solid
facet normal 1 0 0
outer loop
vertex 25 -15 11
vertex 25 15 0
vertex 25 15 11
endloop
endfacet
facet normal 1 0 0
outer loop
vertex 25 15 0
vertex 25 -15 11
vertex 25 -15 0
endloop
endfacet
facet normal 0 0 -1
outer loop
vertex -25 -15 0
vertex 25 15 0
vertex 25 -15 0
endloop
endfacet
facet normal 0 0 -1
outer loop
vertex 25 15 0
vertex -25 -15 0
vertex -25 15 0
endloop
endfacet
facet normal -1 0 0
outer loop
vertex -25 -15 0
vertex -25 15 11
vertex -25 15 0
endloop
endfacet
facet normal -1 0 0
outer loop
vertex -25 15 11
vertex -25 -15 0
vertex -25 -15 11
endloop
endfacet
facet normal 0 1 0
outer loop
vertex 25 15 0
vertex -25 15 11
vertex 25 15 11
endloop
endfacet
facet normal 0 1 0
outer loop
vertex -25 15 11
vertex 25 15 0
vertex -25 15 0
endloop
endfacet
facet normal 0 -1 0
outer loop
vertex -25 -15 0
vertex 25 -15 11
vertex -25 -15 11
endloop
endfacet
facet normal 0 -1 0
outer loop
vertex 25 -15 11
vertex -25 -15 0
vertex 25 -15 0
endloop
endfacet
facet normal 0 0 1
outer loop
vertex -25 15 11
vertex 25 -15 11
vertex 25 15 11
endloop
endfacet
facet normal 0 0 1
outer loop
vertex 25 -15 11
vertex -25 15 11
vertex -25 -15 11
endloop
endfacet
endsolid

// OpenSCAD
// Base block
module base_block() {
    // Removed recessed section to make the top surface flat
    translate([0, 0, 5]) // Adjust position to align flat
    cube([50, 30, 10], center = true);
}

// Flat plate
module flat_plate() {
    // Repositioned to sit directly on the base block without any gap
    translate([0, 0, 10]) // Adjust position to align flush with the base block
    cube([50, 30, 2], center = true);
}

// Trapezoidal block
module trapezoidal_block() {
    // Adjusted top surface width and slanted sides to match the original model
    translate([0, 0, 12]) // Adjust position to align above the flat plate
    rotate([0, 0, 0]) // Ensure proper orientation
    polyhedron(
        points = [
            [-25, -15, 0], [25, -15, 0], [22, 15, 0], [-22, 15, 0], // Bottom vertices
            [-30, -15, 10], [30, -15, 10], [25, 15, 10], [-25, 15, 10]  // Top vertices
        ],
        faces = [
            [0, 1, 5, 4], [1, 2, 6, 5], [2, 3, 7, 6], [3, 0, 4, 7], // Side faces
            [0, 1, 2, 3], [4, 5, 6, 7] // Top and bottom faces
        ]
    );
}

// Triangular prism
module triangular_prism() {
    // Reoriented to align its triangular base parallel to the base block
    translate([0, 0, 22]) // Adjust position to align above the trapezoidal block
    rotate([0, 0, 0]) // Ensure proper orientation
    polyhedron(
        points = [
            [-15, -10, 0], [15, -10, 0], [0, 10, 0], // Bottom vertices
            [-15, -10, 10], [15, -10, 10], [0, 10, 10]  // Top vertices
        ],
        faces = [
            [0, 1, 2], [3, 4, 5], // Triangular faces
            [0, 1, 4, 3], [1, 2, 5, 4], [2, 0, 3, 5] // Rectangular faces
        ]
    );
}

// Wedge-shaped block
module wedge_shaped_block() {
    // Increased slant angle and smoothed edges to match the original model
    translate([0, 0, 32]) // Adjust position to align above the triangular prism
    rotate([0, 0, 0]) // Ensure proper orientation
    polyhedron(
        points = [
            [-10, -10, 0], [10, -10, 0], [10, 10, 0], [-10, 10, 0], // Bottom vertices
            [-10, -10, 10], [10, -10, 10], [0, 15, 10]  // Top vertices
        ],
        faces = [
            [0, 1, 5, 4], [1, 2, 6, 5], [2, 3, 6], [3, 0, 4, 6], // Side faces
            [0, 1, 2, 3], [4, 5, 6] // Bottom and top faces
        ]
    );
}

// Assembly
module assembly() {
    base_block();
    flat_plate();
    trapezoidal_block();
    triangular_prism();
    wedge_shaped_block();
}

// Render the assembly
assembly();
